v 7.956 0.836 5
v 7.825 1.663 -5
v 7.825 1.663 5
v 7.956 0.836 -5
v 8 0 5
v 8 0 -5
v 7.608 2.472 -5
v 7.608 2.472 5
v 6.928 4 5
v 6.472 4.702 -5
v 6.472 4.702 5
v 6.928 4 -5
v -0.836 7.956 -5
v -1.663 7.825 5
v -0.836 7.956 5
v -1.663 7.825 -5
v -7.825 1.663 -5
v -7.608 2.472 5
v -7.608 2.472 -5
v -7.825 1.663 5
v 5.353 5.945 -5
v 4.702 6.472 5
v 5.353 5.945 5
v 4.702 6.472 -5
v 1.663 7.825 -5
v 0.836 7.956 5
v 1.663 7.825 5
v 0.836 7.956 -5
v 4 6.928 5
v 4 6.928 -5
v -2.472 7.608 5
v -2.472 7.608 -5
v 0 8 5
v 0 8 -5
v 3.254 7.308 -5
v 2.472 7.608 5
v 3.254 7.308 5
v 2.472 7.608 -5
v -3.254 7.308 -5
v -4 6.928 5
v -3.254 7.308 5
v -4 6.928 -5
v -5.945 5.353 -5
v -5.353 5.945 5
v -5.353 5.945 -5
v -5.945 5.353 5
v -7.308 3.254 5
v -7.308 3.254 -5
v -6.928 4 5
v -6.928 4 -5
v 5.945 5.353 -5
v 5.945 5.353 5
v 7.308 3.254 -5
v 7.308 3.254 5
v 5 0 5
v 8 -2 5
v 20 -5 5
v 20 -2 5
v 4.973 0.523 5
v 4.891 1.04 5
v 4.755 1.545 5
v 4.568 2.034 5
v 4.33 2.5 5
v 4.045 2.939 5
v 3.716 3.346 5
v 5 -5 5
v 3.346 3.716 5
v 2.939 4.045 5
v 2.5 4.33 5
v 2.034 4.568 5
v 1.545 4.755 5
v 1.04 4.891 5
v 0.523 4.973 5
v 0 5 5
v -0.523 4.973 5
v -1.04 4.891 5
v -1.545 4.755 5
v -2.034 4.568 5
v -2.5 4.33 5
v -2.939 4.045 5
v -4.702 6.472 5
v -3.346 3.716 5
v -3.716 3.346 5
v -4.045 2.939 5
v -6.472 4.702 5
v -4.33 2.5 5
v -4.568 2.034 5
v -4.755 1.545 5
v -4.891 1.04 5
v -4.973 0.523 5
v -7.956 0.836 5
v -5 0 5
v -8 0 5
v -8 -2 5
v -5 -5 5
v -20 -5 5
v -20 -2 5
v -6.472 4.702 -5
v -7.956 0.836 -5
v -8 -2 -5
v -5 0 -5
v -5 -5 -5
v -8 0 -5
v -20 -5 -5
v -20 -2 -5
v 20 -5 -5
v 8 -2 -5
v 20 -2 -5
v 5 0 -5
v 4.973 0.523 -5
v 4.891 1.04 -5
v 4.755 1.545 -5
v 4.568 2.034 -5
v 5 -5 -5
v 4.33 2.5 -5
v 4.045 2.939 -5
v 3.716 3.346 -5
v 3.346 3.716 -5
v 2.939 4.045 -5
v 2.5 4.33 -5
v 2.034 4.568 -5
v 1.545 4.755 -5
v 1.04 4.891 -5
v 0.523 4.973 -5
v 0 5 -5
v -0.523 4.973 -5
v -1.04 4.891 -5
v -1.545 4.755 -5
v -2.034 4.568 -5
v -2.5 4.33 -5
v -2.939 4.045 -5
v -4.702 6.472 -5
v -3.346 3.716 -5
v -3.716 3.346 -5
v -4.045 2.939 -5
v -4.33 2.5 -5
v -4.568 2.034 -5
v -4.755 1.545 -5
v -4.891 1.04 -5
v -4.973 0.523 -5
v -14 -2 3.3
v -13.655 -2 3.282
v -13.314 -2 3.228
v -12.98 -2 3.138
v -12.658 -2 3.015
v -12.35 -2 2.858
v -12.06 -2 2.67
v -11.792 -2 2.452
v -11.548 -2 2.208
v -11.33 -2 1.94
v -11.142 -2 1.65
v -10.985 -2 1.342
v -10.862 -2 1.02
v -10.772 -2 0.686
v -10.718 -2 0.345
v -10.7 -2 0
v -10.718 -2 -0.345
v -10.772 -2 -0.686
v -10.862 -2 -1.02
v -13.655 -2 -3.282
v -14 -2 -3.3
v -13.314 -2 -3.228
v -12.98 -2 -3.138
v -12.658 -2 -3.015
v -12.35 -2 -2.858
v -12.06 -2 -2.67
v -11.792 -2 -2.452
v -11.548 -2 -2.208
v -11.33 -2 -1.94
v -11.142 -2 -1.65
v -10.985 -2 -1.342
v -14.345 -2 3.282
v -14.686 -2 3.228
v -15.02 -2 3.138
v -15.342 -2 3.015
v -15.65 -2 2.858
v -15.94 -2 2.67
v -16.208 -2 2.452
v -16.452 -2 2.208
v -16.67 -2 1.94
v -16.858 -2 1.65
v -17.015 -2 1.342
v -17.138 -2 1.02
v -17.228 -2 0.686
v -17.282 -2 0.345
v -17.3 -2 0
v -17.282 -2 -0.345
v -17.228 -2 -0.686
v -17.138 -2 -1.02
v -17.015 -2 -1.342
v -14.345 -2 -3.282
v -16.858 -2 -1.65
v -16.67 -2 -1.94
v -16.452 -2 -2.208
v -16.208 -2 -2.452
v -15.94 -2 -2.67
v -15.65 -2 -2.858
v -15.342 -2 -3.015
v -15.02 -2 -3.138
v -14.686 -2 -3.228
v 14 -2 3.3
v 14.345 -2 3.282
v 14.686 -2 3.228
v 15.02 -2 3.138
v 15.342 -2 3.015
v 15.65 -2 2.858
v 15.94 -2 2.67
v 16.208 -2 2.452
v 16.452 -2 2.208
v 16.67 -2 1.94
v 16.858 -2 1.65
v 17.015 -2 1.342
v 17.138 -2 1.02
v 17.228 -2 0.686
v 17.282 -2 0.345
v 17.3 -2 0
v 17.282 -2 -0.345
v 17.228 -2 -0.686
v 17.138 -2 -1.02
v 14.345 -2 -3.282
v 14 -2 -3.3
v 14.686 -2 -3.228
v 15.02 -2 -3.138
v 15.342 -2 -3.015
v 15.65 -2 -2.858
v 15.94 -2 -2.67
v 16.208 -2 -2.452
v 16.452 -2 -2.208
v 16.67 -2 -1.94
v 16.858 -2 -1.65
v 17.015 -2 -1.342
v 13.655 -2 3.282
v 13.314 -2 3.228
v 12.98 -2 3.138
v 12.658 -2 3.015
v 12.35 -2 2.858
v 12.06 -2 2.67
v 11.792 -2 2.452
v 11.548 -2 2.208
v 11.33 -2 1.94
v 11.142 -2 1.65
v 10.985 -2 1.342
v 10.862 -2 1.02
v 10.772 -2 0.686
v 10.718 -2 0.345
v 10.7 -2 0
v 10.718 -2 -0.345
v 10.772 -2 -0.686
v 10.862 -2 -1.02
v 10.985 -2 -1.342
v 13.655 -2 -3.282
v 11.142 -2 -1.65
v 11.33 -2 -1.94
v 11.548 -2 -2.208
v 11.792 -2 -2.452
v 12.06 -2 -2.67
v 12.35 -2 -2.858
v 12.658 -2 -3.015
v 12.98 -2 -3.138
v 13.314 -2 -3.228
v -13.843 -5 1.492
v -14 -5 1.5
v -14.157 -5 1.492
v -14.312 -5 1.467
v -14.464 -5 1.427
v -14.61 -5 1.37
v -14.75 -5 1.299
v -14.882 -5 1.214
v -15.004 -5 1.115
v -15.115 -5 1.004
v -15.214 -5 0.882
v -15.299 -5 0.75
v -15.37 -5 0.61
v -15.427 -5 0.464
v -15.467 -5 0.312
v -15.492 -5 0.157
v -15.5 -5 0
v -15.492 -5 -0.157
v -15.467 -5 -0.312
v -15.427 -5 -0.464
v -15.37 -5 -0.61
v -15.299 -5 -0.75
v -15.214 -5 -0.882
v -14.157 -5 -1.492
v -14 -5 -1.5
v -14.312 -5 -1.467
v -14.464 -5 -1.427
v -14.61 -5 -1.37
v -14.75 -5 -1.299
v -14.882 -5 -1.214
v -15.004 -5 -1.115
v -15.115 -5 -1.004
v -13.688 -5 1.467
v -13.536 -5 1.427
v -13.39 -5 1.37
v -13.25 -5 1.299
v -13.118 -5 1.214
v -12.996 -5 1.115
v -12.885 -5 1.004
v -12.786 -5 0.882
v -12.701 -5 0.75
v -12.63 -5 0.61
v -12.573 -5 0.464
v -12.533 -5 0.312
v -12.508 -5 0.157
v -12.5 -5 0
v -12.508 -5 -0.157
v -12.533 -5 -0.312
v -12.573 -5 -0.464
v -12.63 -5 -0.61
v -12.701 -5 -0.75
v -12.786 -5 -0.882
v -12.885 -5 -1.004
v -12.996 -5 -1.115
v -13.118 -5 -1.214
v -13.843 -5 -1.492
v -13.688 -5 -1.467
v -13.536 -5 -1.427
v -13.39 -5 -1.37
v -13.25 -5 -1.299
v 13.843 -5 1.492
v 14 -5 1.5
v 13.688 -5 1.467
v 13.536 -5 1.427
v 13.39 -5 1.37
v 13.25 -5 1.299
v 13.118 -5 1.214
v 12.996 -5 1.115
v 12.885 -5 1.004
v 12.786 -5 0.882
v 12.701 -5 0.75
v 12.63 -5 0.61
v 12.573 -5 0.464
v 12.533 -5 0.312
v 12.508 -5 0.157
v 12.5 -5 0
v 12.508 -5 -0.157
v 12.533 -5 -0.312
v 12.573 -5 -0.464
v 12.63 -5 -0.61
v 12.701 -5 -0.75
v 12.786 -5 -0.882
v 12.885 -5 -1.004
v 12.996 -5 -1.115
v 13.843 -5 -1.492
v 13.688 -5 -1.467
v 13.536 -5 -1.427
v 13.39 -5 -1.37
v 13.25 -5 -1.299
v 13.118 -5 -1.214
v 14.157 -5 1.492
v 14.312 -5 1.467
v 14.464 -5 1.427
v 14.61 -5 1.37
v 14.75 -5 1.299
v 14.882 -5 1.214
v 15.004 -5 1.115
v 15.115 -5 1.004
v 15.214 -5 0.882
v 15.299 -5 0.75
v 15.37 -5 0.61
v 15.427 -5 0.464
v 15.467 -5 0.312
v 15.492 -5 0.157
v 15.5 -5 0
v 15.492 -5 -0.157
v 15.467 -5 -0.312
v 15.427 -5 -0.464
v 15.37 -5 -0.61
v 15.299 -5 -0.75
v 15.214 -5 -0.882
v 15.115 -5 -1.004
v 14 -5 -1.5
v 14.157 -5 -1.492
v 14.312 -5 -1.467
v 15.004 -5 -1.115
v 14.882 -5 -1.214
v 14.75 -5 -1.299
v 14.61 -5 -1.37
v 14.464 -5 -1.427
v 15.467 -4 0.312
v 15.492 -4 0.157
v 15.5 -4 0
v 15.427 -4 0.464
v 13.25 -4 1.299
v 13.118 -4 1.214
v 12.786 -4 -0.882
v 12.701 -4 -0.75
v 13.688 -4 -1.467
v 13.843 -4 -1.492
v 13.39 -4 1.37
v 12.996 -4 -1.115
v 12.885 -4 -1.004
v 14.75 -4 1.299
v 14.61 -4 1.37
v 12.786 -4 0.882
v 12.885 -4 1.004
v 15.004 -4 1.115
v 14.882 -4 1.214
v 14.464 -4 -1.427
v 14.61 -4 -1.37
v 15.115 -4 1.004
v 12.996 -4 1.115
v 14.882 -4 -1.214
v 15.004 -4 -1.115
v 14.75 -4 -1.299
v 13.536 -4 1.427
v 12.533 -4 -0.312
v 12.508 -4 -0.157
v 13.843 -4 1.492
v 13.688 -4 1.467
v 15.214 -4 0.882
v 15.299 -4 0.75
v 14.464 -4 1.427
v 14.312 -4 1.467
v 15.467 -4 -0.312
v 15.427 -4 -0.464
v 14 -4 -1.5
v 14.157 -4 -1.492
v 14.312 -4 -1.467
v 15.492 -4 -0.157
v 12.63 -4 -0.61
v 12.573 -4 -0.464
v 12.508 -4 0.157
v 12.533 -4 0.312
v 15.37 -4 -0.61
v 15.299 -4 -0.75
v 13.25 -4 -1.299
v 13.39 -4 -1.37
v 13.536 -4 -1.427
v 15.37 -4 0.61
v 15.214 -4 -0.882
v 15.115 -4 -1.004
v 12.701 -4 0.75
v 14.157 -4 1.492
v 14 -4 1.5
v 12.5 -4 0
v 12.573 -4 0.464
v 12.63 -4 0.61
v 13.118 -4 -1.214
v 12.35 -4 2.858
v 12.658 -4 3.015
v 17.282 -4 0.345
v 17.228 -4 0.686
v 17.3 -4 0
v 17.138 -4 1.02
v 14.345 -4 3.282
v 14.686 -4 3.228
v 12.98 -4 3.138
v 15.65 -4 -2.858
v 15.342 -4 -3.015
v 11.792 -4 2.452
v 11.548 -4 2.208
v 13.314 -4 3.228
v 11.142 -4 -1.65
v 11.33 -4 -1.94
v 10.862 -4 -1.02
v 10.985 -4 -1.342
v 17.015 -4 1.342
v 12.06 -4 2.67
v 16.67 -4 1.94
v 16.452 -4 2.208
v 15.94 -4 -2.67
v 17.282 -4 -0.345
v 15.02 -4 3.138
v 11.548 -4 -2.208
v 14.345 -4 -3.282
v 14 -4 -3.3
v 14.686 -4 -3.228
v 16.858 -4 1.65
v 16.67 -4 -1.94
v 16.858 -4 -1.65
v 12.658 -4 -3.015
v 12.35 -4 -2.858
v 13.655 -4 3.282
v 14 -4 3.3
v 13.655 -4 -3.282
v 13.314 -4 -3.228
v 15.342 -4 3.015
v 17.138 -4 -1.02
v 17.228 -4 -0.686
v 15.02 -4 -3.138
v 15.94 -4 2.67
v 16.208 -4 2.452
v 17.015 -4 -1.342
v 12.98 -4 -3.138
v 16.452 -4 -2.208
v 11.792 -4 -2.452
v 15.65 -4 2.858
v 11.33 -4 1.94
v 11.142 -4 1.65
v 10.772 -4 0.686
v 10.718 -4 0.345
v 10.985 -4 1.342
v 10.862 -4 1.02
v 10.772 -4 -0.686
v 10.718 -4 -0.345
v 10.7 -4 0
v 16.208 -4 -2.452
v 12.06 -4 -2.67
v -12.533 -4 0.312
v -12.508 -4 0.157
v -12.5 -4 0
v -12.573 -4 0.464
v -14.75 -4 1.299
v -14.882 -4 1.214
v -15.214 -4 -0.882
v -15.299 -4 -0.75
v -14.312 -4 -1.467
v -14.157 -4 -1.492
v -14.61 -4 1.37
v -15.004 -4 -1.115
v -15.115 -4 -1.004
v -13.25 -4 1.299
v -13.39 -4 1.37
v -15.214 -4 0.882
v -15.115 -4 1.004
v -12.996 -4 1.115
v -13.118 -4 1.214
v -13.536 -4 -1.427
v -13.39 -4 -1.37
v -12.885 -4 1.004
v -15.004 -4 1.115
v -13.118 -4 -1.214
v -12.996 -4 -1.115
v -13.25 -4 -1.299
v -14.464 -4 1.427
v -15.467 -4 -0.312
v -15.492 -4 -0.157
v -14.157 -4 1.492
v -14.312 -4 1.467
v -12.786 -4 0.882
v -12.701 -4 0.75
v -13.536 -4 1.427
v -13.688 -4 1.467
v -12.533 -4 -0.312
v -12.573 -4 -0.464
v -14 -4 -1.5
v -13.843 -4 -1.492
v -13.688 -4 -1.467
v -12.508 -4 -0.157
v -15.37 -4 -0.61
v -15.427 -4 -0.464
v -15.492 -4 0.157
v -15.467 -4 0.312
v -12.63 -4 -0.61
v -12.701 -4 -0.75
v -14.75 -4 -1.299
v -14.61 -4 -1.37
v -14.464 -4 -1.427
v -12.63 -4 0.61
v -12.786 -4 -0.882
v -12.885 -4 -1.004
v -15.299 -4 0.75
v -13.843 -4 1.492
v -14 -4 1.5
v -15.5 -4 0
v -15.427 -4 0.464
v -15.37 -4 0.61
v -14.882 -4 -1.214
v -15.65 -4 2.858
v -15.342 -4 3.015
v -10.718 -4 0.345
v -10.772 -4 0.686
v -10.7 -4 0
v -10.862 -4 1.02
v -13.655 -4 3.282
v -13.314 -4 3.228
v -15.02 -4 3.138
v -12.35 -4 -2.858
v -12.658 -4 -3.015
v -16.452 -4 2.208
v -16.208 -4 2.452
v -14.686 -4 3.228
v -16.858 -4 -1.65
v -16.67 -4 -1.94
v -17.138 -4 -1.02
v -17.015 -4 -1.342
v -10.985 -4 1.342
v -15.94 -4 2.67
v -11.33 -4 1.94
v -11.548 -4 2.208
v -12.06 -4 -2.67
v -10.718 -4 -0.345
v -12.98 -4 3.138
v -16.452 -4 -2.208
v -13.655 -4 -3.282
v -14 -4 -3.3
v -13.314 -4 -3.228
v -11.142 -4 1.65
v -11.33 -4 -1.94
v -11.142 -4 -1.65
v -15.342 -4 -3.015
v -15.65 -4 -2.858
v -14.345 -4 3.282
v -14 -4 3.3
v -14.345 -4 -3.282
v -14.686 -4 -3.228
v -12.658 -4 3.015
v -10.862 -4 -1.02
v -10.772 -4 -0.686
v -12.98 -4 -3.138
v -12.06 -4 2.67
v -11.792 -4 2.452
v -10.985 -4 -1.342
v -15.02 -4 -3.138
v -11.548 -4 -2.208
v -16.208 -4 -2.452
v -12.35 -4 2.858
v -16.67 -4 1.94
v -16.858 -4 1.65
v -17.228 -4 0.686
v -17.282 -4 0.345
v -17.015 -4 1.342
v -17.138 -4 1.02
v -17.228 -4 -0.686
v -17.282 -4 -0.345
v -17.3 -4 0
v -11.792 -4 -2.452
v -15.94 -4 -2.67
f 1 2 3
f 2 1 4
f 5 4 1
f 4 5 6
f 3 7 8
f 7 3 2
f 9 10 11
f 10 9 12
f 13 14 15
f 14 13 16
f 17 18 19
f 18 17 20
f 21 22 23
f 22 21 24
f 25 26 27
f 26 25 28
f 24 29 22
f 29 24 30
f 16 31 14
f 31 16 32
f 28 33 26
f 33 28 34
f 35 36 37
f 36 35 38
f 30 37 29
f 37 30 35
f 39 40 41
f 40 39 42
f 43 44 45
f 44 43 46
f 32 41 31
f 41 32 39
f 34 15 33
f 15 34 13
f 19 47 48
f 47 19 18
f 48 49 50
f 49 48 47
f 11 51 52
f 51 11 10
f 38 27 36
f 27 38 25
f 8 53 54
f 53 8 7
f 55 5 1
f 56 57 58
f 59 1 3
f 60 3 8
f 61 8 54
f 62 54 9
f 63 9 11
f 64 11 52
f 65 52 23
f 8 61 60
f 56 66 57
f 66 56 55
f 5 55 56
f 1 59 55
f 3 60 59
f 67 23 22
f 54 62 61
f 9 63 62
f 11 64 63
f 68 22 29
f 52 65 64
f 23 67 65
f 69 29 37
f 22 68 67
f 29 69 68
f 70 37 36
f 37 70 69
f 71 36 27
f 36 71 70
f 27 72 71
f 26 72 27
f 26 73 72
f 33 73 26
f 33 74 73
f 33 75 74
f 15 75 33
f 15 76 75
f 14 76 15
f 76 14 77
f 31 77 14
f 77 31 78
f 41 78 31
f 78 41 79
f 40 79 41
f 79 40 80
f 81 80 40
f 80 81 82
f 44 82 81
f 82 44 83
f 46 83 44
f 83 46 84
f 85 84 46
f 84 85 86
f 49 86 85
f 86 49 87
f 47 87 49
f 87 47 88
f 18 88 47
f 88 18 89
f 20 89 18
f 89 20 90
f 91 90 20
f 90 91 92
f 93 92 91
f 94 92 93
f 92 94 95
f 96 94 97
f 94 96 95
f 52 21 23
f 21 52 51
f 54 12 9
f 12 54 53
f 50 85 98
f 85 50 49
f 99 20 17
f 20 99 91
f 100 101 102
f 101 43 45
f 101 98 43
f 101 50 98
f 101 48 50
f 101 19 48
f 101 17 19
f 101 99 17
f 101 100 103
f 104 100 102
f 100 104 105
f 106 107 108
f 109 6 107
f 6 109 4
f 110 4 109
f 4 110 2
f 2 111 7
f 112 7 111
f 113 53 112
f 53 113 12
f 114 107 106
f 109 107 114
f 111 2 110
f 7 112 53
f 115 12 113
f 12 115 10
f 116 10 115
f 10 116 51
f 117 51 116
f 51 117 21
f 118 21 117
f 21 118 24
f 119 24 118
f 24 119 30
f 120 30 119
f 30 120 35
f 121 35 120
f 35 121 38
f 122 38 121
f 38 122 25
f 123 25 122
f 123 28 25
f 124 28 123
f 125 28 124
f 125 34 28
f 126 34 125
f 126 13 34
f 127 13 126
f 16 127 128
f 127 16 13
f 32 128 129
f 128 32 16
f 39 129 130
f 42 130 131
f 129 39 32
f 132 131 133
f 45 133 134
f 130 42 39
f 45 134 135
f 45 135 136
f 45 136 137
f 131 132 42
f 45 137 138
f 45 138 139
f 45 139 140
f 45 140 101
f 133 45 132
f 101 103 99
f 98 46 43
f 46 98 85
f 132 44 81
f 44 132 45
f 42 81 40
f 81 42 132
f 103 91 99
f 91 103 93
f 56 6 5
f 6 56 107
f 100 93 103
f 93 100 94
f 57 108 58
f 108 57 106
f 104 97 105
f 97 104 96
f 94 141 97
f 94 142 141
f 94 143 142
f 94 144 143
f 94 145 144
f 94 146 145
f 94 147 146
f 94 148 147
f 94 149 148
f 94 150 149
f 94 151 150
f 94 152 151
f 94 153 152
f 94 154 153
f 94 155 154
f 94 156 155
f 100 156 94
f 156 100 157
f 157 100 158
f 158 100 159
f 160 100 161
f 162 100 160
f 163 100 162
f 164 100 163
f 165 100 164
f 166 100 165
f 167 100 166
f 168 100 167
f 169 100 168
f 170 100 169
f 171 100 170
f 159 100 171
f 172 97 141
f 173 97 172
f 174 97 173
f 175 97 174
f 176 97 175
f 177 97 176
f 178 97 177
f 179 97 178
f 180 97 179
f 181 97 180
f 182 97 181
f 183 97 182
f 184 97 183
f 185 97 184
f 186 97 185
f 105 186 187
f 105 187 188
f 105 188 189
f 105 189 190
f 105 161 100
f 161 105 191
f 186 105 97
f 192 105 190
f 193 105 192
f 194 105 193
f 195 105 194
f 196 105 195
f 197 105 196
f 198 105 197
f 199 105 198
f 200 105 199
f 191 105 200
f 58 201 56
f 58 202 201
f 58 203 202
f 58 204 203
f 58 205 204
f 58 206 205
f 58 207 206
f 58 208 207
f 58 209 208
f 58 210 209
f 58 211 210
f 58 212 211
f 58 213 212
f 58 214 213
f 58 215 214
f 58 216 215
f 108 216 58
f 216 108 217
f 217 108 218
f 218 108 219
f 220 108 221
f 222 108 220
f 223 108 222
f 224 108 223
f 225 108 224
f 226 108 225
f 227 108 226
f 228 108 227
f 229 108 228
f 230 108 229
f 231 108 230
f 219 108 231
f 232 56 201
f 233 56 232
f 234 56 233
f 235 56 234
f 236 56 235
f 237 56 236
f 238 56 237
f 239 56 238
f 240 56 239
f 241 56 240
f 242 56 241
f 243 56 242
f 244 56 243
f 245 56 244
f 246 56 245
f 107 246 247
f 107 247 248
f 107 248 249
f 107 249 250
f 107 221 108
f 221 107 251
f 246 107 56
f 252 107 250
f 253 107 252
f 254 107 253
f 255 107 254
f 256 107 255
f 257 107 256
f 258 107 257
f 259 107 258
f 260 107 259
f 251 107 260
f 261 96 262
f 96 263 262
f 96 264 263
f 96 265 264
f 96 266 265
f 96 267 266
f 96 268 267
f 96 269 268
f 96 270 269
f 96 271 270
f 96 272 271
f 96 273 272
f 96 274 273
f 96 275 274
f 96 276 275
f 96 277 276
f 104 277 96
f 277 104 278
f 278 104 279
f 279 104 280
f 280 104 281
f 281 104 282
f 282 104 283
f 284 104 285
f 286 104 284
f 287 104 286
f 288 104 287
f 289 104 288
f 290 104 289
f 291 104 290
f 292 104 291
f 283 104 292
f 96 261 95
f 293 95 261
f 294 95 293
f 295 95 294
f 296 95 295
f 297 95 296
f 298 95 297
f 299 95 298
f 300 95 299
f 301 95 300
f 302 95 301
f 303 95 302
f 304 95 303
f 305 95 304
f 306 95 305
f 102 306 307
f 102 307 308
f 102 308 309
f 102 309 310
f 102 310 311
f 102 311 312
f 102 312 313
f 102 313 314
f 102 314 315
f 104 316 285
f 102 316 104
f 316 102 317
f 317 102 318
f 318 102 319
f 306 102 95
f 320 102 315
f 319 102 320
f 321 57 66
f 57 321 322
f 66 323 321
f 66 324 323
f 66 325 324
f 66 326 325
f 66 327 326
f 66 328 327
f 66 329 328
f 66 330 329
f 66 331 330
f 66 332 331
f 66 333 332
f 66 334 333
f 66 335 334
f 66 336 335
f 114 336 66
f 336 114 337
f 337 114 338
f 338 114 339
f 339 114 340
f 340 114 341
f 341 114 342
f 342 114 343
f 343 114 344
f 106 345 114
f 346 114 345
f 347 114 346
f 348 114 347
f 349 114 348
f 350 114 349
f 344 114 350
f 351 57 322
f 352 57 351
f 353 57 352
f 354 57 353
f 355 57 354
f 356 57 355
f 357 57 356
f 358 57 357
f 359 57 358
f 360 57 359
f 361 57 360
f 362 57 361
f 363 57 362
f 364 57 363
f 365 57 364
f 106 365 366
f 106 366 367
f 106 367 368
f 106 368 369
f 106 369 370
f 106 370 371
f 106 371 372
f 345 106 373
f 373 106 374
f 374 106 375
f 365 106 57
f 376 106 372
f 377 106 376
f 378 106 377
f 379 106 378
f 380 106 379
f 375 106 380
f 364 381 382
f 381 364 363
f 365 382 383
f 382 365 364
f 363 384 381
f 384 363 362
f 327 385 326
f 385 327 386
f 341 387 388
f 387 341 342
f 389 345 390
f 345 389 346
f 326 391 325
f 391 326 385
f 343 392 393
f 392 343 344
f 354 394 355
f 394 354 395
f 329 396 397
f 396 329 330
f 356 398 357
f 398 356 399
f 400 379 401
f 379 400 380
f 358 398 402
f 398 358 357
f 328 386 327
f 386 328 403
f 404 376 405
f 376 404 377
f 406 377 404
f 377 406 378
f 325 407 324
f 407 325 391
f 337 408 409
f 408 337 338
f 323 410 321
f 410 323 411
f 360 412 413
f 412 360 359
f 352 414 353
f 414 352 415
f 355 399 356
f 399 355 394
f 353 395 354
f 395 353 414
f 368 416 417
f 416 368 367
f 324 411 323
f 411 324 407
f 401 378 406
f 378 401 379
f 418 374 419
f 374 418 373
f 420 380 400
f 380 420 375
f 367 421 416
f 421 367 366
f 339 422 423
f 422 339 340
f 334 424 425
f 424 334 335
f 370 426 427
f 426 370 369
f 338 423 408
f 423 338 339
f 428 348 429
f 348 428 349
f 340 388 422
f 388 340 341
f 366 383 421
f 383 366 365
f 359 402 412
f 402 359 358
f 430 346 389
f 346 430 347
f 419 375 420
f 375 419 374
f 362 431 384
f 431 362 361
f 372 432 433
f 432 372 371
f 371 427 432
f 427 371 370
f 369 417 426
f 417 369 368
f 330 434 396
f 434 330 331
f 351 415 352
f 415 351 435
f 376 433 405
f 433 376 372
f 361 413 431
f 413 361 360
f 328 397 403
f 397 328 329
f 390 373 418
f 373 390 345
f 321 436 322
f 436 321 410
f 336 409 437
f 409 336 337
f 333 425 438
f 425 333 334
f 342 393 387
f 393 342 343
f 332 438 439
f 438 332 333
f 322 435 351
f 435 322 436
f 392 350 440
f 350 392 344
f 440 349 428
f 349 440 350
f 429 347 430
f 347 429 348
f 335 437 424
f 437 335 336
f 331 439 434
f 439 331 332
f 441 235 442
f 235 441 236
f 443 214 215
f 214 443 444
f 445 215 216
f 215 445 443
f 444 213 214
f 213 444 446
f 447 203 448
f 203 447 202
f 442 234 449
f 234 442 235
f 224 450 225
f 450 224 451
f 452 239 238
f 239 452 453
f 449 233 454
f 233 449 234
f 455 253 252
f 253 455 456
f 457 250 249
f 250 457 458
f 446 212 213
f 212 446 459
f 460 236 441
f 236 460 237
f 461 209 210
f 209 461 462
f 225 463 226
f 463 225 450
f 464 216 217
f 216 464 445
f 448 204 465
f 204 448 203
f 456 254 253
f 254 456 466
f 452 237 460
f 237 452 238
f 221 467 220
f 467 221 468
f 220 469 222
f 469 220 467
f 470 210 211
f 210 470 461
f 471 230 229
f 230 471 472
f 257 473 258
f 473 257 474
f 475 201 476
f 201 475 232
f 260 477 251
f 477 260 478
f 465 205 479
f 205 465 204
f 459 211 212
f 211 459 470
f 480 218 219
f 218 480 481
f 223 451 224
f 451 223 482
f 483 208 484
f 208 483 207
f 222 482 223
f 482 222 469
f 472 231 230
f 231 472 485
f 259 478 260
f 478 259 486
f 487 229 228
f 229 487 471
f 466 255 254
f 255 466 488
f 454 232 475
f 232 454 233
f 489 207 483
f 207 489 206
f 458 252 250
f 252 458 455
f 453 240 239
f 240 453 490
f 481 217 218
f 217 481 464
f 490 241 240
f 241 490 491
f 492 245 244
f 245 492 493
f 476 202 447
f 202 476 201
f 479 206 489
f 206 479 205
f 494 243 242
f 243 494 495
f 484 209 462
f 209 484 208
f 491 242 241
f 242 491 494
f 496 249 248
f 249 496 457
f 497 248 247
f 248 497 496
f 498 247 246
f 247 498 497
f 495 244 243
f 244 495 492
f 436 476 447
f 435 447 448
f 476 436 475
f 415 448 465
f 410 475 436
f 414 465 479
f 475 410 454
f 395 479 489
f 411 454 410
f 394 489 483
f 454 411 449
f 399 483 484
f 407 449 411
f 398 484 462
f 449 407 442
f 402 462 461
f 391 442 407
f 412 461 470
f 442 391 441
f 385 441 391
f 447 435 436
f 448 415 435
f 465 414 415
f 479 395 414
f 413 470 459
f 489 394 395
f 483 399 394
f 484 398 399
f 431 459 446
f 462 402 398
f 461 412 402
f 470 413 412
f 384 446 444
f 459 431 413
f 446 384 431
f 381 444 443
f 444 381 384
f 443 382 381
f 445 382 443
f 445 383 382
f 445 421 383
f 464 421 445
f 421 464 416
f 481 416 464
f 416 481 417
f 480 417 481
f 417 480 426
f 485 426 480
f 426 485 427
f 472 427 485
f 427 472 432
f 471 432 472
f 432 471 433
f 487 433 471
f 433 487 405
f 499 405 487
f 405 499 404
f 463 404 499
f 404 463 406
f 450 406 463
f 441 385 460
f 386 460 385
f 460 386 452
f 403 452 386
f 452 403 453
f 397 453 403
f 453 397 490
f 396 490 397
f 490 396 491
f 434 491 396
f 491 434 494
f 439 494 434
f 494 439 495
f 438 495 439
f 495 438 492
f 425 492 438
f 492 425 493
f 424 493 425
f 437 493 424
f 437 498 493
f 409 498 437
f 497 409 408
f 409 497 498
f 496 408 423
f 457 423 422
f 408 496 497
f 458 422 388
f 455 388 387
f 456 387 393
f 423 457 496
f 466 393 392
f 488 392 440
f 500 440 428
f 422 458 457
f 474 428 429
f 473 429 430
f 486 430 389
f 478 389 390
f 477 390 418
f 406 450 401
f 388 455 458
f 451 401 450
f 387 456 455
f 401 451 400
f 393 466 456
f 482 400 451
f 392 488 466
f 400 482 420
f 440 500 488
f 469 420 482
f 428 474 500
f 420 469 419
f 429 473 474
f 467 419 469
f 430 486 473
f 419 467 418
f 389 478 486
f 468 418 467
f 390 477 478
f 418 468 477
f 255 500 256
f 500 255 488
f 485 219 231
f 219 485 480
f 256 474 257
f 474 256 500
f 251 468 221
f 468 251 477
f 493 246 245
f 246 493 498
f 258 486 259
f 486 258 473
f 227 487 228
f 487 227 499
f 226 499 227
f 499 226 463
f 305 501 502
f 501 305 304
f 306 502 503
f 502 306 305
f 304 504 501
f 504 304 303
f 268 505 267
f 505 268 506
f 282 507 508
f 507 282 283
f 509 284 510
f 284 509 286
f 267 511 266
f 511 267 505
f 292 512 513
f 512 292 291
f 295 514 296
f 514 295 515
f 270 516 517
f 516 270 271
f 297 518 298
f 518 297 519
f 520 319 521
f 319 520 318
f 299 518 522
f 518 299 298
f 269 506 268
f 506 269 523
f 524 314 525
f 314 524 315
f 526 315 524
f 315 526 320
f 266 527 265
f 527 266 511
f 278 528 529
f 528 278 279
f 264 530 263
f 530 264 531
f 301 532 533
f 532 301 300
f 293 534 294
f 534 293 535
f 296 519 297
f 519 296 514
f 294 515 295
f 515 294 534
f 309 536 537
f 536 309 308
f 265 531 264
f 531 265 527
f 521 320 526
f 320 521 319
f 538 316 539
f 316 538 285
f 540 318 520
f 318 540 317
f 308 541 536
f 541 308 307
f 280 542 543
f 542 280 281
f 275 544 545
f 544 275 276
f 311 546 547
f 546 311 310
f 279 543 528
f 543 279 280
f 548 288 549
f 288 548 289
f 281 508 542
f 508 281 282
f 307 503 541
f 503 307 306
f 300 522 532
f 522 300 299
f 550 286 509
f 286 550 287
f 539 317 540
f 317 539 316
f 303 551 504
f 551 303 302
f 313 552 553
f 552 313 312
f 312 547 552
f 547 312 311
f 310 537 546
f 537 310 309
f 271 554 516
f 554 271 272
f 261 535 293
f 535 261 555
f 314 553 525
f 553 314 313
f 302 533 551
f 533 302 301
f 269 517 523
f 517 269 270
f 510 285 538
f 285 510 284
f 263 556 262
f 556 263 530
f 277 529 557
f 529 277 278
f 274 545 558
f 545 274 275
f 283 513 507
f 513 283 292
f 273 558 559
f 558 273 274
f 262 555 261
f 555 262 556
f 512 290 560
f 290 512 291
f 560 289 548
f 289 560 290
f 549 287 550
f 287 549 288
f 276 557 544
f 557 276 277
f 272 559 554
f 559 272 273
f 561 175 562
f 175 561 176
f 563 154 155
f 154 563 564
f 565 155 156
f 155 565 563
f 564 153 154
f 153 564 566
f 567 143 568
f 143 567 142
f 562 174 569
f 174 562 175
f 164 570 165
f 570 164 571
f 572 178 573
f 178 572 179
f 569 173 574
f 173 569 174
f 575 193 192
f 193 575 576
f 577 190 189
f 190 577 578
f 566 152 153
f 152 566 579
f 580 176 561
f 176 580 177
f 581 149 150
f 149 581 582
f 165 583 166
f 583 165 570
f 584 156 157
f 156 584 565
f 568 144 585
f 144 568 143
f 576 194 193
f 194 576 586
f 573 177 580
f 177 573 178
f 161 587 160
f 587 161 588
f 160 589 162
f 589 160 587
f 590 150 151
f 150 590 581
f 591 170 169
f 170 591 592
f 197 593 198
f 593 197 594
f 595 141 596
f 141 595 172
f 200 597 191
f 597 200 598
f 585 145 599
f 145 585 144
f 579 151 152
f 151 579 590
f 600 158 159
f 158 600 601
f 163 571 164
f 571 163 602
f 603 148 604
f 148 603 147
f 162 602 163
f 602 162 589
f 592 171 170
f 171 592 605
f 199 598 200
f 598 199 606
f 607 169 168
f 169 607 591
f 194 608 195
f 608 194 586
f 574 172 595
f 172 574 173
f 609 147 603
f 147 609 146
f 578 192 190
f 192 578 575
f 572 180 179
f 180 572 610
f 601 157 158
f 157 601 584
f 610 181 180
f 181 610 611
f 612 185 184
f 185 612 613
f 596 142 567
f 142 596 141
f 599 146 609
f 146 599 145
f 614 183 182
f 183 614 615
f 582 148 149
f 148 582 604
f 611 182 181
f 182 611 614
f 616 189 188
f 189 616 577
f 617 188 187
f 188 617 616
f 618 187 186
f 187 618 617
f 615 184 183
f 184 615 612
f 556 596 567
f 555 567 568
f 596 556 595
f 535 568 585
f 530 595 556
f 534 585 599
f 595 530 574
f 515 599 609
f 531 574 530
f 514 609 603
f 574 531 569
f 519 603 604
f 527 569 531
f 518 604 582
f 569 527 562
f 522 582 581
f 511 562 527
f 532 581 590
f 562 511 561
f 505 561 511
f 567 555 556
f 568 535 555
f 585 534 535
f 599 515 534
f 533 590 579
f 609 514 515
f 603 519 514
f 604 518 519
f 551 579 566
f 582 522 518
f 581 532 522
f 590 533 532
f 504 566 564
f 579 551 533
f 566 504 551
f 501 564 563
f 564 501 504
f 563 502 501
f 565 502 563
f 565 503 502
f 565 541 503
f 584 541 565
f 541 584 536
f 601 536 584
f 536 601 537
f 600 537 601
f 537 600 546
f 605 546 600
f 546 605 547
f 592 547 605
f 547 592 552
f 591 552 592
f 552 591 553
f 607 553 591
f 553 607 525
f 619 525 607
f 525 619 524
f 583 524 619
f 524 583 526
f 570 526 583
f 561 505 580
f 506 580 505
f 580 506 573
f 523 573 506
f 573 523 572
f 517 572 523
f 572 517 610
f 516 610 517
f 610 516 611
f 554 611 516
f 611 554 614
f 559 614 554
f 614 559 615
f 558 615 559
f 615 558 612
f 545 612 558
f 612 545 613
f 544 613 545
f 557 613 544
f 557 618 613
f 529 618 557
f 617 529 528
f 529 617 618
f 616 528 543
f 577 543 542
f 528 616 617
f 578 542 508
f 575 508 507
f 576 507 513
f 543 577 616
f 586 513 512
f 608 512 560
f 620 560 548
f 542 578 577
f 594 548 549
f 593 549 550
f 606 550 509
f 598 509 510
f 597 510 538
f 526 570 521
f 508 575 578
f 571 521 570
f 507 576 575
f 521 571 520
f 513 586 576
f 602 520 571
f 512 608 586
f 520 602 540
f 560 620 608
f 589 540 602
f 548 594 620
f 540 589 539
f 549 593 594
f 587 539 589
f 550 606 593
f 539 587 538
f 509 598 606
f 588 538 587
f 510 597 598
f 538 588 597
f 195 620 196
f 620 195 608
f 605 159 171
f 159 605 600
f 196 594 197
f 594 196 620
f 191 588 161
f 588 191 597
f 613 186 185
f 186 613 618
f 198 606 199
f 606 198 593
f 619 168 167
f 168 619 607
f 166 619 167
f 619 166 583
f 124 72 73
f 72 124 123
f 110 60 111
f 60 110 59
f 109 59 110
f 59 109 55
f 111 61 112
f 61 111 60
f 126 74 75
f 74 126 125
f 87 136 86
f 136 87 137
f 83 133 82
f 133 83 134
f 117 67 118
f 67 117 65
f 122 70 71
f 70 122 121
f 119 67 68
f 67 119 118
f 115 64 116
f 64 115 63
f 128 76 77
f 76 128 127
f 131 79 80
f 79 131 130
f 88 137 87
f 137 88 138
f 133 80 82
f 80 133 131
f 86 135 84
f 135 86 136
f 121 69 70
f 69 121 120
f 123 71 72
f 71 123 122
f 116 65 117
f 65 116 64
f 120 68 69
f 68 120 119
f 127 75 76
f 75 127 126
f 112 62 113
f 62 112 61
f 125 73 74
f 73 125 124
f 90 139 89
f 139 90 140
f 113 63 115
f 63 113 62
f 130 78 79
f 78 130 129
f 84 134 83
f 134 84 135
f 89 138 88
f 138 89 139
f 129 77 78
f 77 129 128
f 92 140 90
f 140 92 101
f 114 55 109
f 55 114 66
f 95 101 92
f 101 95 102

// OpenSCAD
$fn = 60;
length = 10;
width = 40;
thickness = 3;
innerdiameter = 10;
outerdiameter = innerdiameter+2*thickness;
pocketdepth = 2;

holediameter = 3;
holeposition = width/2-(width/2-innerdiameter/2-thickness)/2;

module hole (pos, rot){
		translate(pos) rotate(rot)
		{
			cylinder(d=holediameter, h=2*thickness, center=true);
			translate([0, 0, -pocketdepth/2])
				cylinder(d=2.2*holediameter, h=thickness, center=true);
		}
}

difference()
{
	union()
	{
		cylinder(h=length, d=outerdiameter, center=true);
		translate([0, -outerdiameter/4, 0])
			cube([outerdiameter, outerdiameter/2, length], center=true);

		translate([0, -innerdiameter/2+thickness/2, 0])
			cube([width, thickness, length], center=true);
	}


	// color("red")
	{
		cylinder(h=length*2, d=innerdiameter, center=true);
		translate([0, -innerdiameter/2, 0])
			cube([innerdiameter, innerdiameter, length*2], center=true);

		translate([0, -innerdiameter/2-thickness, 0])
			cube([width, 2*thickness, 2*length], center=true);

		// holes
		hole([holeposition,-innerdiameter/2+thickness/2, 0], [90, 0, 0]);
		hole([-holeposition,-innerdiameter/2+thickness/2, 0], [90, 0, 0]);
	}
}
